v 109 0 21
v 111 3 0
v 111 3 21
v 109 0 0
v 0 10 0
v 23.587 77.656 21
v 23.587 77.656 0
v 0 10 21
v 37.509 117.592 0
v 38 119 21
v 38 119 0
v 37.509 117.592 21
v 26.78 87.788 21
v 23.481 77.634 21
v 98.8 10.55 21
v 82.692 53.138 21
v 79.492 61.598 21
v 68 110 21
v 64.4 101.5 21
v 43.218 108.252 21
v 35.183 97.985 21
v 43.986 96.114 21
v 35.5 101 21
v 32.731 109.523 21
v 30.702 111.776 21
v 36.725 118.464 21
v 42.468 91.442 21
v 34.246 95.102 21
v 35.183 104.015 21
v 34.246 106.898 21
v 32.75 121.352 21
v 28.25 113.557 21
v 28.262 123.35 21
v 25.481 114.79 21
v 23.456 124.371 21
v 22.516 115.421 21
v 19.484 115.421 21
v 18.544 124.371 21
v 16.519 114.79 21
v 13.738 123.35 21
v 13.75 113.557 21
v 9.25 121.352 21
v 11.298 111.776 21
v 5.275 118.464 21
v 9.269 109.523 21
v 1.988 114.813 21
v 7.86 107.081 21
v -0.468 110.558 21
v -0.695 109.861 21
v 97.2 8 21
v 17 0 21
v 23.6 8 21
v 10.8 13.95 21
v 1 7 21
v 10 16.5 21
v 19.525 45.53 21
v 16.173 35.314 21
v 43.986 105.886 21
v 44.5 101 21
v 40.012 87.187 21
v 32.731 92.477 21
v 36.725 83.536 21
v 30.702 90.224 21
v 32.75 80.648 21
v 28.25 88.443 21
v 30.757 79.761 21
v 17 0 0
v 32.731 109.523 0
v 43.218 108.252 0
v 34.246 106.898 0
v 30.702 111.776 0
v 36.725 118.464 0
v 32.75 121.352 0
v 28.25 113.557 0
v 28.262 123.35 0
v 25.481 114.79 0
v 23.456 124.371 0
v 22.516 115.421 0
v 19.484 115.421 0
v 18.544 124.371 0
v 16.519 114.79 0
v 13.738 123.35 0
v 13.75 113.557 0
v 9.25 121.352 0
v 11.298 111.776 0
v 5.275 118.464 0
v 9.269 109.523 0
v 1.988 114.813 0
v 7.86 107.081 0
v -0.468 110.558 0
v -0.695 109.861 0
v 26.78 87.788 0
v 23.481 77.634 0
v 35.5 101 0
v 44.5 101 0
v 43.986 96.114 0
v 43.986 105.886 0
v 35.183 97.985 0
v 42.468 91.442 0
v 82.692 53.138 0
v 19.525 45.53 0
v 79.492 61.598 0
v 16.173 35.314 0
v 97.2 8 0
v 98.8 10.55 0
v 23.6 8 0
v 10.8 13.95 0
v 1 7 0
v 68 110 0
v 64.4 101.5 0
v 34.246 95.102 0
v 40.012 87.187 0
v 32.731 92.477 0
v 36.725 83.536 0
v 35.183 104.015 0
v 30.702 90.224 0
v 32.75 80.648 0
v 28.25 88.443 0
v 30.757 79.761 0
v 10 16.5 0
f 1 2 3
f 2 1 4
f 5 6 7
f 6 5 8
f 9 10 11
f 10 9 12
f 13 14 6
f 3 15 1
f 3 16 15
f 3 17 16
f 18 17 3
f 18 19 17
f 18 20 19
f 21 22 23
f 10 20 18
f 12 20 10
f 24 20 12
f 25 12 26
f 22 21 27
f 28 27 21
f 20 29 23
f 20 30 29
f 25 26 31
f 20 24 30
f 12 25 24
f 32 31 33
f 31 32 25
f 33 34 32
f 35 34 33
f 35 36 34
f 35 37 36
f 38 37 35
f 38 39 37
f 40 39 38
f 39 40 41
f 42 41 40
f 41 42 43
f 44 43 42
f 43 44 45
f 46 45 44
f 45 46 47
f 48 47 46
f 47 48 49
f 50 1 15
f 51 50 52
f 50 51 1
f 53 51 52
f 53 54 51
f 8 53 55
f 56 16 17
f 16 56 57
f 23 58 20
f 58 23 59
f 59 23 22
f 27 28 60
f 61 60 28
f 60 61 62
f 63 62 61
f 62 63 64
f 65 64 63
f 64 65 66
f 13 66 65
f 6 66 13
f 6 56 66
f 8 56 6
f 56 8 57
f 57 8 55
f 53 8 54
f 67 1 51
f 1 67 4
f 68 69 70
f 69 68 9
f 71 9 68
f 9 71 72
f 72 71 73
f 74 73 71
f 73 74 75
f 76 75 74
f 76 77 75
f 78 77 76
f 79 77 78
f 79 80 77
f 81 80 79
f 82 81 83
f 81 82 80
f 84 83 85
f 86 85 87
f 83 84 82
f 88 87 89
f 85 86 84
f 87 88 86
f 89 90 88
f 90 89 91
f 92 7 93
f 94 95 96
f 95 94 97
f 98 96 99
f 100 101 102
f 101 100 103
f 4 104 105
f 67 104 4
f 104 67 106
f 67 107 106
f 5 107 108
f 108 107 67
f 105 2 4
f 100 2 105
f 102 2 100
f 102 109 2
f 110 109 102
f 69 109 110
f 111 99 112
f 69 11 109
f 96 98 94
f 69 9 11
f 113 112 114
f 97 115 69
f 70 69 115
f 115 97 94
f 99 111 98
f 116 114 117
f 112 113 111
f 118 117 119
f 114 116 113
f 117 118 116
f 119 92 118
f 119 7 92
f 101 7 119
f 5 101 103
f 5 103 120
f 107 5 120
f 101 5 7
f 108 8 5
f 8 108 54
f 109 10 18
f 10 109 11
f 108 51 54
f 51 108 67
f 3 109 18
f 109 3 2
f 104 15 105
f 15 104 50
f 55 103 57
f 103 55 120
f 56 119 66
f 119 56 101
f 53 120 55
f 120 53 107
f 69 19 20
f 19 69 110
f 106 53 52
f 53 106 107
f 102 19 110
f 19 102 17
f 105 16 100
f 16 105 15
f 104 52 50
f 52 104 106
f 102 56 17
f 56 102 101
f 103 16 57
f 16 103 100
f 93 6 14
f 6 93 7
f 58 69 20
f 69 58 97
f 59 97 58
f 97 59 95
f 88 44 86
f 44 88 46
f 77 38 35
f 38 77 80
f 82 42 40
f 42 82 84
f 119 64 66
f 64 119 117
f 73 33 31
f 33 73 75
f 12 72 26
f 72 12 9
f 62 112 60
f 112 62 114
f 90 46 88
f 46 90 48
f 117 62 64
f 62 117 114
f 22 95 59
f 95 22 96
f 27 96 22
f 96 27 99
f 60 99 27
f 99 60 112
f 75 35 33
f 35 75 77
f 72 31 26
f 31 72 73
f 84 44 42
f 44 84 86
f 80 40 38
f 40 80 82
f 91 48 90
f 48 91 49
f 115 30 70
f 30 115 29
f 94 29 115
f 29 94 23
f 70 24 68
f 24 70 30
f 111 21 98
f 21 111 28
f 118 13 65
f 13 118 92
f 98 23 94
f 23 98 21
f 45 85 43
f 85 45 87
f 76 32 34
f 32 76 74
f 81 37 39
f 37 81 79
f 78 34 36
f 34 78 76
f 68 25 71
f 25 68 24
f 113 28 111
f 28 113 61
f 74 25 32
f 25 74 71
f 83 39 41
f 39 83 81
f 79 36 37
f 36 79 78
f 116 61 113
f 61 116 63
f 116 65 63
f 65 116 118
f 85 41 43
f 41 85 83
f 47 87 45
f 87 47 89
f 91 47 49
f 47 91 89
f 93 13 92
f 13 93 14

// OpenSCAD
thickness = 21;
rod_inner = 29;
rod_outer = 47;

rod_x = 21;
rod_y = 101;

module shape2D() {
    polygon(
        points = [
            [0, 10],
            [38, 119],
            [68, 110],
            [111, 3],
            [109, 0],
            [17, 0],
            [1, 7]
        ]
    );
}

module shape3D() {
    difference() {
        linear_extrude( thickness ) shape2D();
        
        translate([ 10, 8, -1])
        linear_extrude( 2*thickness ) scale([0.8, 0.85, 1]) shape2D();
    }
    
    translate([15, 35, 0]) 
    rotate([0, 0, 15])
    cube([ 72, 9, thickness]);
    
    translate([rod_x, rod_y, 0])
    cylinder( h = thickness, d = rod_outer );
}

difference() {
    shape3D();
    
    translate([rod_x, rod_y, -thickness])
    cylinder(h = 4*thickness, d = rod_inner);

    translate([22.3, 74, -thickness])
    rotate([0, 0, 72])
    cube([27, 50, 3*thickness]);
}
